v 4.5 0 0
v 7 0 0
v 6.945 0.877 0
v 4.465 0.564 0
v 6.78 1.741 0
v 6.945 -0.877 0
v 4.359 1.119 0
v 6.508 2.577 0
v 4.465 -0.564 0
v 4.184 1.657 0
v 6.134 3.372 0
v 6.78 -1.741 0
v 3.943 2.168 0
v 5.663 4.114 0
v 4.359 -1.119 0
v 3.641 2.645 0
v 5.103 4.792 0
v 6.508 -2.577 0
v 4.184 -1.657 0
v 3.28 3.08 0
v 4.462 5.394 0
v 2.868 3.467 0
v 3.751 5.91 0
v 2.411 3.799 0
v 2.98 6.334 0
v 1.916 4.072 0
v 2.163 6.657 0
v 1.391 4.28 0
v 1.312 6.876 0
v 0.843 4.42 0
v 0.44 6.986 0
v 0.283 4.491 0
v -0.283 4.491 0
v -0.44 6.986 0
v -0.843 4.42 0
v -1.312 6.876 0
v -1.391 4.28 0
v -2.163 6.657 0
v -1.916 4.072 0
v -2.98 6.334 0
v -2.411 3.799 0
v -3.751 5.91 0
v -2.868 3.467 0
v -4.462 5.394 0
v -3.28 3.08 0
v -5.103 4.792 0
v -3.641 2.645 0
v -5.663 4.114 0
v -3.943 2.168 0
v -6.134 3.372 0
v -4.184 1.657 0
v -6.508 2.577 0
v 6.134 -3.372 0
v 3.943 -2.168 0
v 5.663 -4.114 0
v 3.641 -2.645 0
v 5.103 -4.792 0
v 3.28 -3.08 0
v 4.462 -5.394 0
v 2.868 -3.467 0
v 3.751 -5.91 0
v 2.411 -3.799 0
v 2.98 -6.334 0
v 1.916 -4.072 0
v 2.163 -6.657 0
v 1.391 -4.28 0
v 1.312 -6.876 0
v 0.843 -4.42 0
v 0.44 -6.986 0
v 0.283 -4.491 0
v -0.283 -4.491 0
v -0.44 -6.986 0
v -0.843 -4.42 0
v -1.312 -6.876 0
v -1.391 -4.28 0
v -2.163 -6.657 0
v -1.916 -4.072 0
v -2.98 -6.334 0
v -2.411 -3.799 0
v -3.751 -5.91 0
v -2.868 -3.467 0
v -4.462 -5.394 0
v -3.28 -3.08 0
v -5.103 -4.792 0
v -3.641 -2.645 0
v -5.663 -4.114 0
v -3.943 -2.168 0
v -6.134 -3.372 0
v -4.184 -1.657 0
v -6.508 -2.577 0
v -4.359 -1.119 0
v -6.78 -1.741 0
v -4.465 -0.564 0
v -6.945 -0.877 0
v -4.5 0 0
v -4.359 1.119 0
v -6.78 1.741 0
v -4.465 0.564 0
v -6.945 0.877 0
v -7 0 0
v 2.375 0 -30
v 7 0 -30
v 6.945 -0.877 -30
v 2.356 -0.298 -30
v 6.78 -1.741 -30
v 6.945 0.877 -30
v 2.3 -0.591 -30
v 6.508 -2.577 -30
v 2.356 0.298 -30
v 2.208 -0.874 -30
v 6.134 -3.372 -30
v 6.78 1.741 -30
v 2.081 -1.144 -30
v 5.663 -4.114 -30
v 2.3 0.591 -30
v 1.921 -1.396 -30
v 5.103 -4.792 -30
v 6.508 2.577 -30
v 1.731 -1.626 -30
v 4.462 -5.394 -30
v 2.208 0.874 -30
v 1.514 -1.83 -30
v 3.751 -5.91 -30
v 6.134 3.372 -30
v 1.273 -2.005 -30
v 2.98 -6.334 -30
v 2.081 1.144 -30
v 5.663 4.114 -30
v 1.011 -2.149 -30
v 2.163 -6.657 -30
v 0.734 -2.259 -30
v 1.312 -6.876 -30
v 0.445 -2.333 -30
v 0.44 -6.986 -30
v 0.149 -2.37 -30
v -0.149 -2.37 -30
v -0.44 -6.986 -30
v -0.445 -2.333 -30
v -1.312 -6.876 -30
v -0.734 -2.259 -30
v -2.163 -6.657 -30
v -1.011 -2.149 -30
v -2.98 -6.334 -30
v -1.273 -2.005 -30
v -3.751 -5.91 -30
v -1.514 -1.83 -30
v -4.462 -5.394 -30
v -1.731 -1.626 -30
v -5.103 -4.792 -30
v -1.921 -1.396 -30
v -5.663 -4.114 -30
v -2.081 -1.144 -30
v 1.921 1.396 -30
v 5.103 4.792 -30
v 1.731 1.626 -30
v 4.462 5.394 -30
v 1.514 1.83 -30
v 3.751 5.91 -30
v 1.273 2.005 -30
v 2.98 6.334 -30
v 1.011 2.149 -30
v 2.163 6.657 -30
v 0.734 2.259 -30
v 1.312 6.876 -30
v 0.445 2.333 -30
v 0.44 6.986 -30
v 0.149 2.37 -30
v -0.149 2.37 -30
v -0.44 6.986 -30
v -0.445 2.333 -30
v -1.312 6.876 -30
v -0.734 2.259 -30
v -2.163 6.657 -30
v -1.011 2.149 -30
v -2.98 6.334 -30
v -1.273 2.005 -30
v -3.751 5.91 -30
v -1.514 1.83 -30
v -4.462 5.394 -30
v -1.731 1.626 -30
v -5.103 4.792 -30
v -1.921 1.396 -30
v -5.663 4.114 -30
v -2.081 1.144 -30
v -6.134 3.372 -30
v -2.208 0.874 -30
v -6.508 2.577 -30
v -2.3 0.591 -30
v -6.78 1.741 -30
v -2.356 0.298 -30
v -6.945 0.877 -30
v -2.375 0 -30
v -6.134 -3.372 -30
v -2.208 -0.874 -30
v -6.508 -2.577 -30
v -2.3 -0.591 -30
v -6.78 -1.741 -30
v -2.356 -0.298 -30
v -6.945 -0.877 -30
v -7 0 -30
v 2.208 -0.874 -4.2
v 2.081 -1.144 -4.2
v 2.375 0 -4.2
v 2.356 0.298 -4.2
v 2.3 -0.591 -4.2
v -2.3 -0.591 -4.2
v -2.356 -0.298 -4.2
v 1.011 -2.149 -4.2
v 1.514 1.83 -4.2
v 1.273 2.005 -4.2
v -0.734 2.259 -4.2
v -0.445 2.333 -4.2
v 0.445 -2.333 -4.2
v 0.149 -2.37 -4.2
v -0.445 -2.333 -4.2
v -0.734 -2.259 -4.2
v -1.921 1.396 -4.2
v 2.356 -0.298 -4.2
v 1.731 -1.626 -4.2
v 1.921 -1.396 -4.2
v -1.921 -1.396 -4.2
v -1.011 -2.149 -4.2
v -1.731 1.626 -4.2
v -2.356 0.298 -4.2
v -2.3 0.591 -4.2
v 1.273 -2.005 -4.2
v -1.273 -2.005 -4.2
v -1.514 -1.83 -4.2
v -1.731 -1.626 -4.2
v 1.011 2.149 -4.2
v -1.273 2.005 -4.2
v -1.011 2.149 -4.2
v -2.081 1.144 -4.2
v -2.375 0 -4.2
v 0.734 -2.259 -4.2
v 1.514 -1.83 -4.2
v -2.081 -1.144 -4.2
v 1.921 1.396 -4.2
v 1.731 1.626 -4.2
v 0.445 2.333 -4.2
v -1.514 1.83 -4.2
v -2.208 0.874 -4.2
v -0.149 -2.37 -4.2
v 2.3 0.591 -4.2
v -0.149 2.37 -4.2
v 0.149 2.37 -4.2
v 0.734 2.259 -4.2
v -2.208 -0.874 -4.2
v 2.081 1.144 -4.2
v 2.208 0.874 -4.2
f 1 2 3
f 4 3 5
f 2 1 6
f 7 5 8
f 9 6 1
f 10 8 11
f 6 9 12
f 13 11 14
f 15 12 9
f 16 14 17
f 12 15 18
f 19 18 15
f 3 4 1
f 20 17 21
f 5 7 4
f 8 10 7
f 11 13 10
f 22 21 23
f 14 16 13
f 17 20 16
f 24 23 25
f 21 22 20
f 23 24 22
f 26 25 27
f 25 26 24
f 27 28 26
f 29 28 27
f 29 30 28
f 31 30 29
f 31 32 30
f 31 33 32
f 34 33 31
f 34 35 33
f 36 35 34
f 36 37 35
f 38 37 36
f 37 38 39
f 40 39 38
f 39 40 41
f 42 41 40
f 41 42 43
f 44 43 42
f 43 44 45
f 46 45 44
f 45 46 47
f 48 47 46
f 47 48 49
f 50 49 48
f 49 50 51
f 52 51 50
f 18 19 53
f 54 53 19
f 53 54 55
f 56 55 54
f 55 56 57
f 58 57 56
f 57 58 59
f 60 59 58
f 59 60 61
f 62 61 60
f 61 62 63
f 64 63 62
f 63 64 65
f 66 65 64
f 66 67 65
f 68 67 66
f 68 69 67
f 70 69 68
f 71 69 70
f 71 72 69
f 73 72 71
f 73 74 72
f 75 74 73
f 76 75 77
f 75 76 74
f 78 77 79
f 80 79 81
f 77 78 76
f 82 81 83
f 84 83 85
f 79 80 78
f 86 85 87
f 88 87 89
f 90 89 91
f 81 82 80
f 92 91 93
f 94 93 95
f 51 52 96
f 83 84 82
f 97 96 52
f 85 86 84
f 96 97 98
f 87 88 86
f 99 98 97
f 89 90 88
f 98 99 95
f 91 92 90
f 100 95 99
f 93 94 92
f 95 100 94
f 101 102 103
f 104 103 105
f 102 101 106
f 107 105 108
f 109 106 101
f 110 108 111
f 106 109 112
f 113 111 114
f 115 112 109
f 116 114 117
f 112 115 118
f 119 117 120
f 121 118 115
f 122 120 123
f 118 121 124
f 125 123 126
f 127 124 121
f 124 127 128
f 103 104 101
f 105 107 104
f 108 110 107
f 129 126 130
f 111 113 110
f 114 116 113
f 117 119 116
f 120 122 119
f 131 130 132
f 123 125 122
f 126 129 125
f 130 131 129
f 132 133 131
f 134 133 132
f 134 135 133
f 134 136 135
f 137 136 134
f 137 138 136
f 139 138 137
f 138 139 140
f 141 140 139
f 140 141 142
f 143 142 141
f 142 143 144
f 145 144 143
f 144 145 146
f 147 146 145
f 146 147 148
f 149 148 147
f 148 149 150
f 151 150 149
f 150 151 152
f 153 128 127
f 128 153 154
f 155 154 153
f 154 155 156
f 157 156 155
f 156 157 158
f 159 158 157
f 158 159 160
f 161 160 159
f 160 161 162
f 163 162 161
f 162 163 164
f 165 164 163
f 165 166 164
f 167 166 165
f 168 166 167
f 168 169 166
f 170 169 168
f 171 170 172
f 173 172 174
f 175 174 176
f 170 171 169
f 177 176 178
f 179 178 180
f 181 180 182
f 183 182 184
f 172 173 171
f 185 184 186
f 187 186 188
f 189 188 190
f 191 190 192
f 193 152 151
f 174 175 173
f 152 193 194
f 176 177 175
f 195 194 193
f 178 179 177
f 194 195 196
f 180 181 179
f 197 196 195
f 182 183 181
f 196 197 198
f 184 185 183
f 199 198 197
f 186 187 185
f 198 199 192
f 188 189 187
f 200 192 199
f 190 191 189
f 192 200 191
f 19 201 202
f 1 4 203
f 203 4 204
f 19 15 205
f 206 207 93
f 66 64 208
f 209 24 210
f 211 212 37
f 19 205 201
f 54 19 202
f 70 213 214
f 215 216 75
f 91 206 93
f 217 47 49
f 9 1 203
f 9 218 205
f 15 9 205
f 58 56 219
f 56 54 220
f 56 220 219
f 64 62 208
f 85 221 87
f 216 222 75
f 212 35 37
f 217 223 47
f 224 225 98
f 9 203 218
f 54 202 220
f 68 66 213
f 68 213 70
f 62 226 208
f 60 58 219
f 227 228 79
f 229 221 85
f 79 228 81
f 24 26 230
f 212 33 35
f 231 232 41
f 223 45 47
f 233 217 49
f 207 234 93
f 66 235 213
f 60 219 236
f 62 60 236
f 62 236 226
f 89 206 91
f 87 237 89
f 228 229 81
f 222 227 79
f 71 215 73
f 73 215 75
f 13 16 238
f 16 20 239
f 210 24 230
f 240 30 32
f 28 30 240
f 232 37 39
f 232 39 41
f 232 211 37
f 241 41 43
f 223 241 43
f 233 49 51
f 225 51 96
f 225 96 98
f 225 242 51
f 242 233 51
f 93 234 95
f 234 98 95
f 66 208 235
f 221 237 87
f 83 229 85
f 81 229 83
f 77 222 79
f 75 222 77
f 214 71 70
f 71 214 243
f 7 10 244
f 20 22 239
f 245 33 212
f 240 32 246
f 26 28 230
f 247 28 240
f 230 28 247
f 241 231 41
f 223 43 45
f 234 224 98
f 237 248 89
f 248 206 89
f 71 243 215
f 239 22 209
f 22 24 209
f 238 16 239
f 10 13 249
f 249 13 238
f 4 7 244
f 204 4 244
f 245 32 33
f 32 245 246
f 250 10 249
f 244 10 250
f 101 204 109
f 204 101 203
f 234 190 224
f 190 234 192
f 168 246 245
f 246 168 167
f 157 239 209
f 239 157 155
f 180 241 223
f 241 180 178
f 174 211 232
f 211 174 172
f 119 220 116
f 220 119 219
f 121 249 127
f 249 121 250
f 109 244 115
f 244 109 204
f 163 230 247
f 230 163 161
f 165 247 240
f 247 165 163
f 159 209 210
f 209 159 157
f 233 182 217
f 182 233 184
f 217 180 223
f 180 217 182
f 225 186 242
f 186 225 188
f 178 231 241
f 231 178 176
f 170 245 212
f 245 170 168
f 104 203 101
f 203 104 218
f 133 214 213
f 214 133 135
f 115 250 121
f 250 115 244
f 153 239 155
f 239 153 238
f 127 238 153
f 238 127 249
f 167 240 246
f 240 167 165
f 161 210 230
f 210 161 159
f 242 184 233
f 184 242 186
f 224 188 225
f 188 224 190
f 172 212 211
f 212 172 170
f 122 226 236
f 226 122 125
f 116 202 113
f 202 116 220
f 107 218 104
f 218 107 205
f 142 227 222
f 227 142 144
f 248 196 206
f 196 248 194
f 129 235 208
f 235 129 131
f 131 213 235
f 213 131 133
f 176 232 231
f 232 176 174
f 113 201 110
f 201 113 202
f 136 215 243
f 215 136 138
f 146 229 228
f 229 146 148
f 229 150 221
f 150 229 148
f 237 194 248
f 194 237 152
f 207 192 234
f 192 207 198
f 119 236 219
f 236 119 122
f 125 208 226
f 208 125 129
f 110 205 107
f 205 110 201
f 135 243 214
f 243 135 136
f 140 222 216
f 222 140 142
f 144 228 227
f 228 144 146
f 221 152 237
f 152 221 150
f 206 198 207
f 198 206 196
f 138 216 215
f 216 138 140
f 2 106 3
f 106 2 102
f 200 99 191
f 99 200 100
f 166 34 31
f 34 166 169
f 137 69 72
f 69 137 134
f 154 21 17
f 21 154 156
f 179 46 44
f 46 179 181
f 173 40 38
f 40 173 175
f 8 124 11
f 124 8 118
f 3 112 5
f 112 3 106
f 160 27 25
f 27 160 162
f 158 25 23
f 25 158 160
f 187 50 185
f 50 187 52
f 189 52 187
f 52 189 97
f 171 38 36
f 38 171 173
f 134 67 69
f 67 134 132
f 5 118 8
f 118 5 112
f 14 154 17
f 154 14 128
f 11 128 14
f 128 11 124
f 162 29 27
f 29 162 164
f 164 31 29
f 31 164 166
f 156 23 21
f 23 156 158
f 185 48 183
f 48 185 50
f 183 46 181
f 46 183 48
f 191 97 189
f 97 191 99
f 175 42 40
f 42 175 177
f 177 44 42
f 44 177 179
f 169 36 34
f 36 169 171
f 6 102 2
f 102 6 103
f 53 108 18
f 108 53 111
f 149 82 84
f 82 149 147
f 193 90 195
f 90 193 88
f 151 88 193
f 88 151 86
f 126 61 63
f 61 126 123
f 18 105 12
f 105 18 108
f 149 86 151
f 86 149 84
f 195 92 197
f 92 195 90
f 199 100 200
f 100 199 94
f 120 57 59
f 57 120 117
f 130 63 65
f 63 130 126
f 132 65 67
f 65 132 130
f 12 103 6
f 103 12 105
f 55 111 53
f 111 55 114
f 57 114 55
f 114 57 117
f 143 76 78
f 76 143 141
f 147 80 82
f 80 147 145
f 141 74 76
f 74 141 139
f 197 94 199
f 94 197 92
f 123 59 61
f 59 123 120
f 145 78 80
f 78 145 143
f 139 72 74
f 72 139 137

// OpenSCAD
$fn = 50;


difference() {
	union() {
		translate(v = [0, 0, -30.0000000000]) {
			cylinder(h = 30, r = 7.0000000000);
		}
		cylinder(h = 0, r = 16.0000000000);
	}
	union() {
		translate(v = [0, 0, 0]) {
			rotate(a = [0, 0, 0]) {
				difference() {
					union() {
						#translate(v = [0, 0, -30.0000000000]) {
							cylinder(h = 30, r = 2.2500000000);
						}
						#translate(v = [0, 0, -4.2000000000]) {
							cylinder(h = 4.2000000000, r1 = 2.3750000000, r2 = 4.5000000000);
						}
						#translate(v = [0, 0, -30.0000000000]) {
							cylinder(h = 30, r = 2.3750000000);
						}
						#translate(v = [0, 0, -30.0000000000]) {
							cylinder(h = 30, r = 2.2500000000);
						}
					}
					union();
				}
			}
		}
	}
}
